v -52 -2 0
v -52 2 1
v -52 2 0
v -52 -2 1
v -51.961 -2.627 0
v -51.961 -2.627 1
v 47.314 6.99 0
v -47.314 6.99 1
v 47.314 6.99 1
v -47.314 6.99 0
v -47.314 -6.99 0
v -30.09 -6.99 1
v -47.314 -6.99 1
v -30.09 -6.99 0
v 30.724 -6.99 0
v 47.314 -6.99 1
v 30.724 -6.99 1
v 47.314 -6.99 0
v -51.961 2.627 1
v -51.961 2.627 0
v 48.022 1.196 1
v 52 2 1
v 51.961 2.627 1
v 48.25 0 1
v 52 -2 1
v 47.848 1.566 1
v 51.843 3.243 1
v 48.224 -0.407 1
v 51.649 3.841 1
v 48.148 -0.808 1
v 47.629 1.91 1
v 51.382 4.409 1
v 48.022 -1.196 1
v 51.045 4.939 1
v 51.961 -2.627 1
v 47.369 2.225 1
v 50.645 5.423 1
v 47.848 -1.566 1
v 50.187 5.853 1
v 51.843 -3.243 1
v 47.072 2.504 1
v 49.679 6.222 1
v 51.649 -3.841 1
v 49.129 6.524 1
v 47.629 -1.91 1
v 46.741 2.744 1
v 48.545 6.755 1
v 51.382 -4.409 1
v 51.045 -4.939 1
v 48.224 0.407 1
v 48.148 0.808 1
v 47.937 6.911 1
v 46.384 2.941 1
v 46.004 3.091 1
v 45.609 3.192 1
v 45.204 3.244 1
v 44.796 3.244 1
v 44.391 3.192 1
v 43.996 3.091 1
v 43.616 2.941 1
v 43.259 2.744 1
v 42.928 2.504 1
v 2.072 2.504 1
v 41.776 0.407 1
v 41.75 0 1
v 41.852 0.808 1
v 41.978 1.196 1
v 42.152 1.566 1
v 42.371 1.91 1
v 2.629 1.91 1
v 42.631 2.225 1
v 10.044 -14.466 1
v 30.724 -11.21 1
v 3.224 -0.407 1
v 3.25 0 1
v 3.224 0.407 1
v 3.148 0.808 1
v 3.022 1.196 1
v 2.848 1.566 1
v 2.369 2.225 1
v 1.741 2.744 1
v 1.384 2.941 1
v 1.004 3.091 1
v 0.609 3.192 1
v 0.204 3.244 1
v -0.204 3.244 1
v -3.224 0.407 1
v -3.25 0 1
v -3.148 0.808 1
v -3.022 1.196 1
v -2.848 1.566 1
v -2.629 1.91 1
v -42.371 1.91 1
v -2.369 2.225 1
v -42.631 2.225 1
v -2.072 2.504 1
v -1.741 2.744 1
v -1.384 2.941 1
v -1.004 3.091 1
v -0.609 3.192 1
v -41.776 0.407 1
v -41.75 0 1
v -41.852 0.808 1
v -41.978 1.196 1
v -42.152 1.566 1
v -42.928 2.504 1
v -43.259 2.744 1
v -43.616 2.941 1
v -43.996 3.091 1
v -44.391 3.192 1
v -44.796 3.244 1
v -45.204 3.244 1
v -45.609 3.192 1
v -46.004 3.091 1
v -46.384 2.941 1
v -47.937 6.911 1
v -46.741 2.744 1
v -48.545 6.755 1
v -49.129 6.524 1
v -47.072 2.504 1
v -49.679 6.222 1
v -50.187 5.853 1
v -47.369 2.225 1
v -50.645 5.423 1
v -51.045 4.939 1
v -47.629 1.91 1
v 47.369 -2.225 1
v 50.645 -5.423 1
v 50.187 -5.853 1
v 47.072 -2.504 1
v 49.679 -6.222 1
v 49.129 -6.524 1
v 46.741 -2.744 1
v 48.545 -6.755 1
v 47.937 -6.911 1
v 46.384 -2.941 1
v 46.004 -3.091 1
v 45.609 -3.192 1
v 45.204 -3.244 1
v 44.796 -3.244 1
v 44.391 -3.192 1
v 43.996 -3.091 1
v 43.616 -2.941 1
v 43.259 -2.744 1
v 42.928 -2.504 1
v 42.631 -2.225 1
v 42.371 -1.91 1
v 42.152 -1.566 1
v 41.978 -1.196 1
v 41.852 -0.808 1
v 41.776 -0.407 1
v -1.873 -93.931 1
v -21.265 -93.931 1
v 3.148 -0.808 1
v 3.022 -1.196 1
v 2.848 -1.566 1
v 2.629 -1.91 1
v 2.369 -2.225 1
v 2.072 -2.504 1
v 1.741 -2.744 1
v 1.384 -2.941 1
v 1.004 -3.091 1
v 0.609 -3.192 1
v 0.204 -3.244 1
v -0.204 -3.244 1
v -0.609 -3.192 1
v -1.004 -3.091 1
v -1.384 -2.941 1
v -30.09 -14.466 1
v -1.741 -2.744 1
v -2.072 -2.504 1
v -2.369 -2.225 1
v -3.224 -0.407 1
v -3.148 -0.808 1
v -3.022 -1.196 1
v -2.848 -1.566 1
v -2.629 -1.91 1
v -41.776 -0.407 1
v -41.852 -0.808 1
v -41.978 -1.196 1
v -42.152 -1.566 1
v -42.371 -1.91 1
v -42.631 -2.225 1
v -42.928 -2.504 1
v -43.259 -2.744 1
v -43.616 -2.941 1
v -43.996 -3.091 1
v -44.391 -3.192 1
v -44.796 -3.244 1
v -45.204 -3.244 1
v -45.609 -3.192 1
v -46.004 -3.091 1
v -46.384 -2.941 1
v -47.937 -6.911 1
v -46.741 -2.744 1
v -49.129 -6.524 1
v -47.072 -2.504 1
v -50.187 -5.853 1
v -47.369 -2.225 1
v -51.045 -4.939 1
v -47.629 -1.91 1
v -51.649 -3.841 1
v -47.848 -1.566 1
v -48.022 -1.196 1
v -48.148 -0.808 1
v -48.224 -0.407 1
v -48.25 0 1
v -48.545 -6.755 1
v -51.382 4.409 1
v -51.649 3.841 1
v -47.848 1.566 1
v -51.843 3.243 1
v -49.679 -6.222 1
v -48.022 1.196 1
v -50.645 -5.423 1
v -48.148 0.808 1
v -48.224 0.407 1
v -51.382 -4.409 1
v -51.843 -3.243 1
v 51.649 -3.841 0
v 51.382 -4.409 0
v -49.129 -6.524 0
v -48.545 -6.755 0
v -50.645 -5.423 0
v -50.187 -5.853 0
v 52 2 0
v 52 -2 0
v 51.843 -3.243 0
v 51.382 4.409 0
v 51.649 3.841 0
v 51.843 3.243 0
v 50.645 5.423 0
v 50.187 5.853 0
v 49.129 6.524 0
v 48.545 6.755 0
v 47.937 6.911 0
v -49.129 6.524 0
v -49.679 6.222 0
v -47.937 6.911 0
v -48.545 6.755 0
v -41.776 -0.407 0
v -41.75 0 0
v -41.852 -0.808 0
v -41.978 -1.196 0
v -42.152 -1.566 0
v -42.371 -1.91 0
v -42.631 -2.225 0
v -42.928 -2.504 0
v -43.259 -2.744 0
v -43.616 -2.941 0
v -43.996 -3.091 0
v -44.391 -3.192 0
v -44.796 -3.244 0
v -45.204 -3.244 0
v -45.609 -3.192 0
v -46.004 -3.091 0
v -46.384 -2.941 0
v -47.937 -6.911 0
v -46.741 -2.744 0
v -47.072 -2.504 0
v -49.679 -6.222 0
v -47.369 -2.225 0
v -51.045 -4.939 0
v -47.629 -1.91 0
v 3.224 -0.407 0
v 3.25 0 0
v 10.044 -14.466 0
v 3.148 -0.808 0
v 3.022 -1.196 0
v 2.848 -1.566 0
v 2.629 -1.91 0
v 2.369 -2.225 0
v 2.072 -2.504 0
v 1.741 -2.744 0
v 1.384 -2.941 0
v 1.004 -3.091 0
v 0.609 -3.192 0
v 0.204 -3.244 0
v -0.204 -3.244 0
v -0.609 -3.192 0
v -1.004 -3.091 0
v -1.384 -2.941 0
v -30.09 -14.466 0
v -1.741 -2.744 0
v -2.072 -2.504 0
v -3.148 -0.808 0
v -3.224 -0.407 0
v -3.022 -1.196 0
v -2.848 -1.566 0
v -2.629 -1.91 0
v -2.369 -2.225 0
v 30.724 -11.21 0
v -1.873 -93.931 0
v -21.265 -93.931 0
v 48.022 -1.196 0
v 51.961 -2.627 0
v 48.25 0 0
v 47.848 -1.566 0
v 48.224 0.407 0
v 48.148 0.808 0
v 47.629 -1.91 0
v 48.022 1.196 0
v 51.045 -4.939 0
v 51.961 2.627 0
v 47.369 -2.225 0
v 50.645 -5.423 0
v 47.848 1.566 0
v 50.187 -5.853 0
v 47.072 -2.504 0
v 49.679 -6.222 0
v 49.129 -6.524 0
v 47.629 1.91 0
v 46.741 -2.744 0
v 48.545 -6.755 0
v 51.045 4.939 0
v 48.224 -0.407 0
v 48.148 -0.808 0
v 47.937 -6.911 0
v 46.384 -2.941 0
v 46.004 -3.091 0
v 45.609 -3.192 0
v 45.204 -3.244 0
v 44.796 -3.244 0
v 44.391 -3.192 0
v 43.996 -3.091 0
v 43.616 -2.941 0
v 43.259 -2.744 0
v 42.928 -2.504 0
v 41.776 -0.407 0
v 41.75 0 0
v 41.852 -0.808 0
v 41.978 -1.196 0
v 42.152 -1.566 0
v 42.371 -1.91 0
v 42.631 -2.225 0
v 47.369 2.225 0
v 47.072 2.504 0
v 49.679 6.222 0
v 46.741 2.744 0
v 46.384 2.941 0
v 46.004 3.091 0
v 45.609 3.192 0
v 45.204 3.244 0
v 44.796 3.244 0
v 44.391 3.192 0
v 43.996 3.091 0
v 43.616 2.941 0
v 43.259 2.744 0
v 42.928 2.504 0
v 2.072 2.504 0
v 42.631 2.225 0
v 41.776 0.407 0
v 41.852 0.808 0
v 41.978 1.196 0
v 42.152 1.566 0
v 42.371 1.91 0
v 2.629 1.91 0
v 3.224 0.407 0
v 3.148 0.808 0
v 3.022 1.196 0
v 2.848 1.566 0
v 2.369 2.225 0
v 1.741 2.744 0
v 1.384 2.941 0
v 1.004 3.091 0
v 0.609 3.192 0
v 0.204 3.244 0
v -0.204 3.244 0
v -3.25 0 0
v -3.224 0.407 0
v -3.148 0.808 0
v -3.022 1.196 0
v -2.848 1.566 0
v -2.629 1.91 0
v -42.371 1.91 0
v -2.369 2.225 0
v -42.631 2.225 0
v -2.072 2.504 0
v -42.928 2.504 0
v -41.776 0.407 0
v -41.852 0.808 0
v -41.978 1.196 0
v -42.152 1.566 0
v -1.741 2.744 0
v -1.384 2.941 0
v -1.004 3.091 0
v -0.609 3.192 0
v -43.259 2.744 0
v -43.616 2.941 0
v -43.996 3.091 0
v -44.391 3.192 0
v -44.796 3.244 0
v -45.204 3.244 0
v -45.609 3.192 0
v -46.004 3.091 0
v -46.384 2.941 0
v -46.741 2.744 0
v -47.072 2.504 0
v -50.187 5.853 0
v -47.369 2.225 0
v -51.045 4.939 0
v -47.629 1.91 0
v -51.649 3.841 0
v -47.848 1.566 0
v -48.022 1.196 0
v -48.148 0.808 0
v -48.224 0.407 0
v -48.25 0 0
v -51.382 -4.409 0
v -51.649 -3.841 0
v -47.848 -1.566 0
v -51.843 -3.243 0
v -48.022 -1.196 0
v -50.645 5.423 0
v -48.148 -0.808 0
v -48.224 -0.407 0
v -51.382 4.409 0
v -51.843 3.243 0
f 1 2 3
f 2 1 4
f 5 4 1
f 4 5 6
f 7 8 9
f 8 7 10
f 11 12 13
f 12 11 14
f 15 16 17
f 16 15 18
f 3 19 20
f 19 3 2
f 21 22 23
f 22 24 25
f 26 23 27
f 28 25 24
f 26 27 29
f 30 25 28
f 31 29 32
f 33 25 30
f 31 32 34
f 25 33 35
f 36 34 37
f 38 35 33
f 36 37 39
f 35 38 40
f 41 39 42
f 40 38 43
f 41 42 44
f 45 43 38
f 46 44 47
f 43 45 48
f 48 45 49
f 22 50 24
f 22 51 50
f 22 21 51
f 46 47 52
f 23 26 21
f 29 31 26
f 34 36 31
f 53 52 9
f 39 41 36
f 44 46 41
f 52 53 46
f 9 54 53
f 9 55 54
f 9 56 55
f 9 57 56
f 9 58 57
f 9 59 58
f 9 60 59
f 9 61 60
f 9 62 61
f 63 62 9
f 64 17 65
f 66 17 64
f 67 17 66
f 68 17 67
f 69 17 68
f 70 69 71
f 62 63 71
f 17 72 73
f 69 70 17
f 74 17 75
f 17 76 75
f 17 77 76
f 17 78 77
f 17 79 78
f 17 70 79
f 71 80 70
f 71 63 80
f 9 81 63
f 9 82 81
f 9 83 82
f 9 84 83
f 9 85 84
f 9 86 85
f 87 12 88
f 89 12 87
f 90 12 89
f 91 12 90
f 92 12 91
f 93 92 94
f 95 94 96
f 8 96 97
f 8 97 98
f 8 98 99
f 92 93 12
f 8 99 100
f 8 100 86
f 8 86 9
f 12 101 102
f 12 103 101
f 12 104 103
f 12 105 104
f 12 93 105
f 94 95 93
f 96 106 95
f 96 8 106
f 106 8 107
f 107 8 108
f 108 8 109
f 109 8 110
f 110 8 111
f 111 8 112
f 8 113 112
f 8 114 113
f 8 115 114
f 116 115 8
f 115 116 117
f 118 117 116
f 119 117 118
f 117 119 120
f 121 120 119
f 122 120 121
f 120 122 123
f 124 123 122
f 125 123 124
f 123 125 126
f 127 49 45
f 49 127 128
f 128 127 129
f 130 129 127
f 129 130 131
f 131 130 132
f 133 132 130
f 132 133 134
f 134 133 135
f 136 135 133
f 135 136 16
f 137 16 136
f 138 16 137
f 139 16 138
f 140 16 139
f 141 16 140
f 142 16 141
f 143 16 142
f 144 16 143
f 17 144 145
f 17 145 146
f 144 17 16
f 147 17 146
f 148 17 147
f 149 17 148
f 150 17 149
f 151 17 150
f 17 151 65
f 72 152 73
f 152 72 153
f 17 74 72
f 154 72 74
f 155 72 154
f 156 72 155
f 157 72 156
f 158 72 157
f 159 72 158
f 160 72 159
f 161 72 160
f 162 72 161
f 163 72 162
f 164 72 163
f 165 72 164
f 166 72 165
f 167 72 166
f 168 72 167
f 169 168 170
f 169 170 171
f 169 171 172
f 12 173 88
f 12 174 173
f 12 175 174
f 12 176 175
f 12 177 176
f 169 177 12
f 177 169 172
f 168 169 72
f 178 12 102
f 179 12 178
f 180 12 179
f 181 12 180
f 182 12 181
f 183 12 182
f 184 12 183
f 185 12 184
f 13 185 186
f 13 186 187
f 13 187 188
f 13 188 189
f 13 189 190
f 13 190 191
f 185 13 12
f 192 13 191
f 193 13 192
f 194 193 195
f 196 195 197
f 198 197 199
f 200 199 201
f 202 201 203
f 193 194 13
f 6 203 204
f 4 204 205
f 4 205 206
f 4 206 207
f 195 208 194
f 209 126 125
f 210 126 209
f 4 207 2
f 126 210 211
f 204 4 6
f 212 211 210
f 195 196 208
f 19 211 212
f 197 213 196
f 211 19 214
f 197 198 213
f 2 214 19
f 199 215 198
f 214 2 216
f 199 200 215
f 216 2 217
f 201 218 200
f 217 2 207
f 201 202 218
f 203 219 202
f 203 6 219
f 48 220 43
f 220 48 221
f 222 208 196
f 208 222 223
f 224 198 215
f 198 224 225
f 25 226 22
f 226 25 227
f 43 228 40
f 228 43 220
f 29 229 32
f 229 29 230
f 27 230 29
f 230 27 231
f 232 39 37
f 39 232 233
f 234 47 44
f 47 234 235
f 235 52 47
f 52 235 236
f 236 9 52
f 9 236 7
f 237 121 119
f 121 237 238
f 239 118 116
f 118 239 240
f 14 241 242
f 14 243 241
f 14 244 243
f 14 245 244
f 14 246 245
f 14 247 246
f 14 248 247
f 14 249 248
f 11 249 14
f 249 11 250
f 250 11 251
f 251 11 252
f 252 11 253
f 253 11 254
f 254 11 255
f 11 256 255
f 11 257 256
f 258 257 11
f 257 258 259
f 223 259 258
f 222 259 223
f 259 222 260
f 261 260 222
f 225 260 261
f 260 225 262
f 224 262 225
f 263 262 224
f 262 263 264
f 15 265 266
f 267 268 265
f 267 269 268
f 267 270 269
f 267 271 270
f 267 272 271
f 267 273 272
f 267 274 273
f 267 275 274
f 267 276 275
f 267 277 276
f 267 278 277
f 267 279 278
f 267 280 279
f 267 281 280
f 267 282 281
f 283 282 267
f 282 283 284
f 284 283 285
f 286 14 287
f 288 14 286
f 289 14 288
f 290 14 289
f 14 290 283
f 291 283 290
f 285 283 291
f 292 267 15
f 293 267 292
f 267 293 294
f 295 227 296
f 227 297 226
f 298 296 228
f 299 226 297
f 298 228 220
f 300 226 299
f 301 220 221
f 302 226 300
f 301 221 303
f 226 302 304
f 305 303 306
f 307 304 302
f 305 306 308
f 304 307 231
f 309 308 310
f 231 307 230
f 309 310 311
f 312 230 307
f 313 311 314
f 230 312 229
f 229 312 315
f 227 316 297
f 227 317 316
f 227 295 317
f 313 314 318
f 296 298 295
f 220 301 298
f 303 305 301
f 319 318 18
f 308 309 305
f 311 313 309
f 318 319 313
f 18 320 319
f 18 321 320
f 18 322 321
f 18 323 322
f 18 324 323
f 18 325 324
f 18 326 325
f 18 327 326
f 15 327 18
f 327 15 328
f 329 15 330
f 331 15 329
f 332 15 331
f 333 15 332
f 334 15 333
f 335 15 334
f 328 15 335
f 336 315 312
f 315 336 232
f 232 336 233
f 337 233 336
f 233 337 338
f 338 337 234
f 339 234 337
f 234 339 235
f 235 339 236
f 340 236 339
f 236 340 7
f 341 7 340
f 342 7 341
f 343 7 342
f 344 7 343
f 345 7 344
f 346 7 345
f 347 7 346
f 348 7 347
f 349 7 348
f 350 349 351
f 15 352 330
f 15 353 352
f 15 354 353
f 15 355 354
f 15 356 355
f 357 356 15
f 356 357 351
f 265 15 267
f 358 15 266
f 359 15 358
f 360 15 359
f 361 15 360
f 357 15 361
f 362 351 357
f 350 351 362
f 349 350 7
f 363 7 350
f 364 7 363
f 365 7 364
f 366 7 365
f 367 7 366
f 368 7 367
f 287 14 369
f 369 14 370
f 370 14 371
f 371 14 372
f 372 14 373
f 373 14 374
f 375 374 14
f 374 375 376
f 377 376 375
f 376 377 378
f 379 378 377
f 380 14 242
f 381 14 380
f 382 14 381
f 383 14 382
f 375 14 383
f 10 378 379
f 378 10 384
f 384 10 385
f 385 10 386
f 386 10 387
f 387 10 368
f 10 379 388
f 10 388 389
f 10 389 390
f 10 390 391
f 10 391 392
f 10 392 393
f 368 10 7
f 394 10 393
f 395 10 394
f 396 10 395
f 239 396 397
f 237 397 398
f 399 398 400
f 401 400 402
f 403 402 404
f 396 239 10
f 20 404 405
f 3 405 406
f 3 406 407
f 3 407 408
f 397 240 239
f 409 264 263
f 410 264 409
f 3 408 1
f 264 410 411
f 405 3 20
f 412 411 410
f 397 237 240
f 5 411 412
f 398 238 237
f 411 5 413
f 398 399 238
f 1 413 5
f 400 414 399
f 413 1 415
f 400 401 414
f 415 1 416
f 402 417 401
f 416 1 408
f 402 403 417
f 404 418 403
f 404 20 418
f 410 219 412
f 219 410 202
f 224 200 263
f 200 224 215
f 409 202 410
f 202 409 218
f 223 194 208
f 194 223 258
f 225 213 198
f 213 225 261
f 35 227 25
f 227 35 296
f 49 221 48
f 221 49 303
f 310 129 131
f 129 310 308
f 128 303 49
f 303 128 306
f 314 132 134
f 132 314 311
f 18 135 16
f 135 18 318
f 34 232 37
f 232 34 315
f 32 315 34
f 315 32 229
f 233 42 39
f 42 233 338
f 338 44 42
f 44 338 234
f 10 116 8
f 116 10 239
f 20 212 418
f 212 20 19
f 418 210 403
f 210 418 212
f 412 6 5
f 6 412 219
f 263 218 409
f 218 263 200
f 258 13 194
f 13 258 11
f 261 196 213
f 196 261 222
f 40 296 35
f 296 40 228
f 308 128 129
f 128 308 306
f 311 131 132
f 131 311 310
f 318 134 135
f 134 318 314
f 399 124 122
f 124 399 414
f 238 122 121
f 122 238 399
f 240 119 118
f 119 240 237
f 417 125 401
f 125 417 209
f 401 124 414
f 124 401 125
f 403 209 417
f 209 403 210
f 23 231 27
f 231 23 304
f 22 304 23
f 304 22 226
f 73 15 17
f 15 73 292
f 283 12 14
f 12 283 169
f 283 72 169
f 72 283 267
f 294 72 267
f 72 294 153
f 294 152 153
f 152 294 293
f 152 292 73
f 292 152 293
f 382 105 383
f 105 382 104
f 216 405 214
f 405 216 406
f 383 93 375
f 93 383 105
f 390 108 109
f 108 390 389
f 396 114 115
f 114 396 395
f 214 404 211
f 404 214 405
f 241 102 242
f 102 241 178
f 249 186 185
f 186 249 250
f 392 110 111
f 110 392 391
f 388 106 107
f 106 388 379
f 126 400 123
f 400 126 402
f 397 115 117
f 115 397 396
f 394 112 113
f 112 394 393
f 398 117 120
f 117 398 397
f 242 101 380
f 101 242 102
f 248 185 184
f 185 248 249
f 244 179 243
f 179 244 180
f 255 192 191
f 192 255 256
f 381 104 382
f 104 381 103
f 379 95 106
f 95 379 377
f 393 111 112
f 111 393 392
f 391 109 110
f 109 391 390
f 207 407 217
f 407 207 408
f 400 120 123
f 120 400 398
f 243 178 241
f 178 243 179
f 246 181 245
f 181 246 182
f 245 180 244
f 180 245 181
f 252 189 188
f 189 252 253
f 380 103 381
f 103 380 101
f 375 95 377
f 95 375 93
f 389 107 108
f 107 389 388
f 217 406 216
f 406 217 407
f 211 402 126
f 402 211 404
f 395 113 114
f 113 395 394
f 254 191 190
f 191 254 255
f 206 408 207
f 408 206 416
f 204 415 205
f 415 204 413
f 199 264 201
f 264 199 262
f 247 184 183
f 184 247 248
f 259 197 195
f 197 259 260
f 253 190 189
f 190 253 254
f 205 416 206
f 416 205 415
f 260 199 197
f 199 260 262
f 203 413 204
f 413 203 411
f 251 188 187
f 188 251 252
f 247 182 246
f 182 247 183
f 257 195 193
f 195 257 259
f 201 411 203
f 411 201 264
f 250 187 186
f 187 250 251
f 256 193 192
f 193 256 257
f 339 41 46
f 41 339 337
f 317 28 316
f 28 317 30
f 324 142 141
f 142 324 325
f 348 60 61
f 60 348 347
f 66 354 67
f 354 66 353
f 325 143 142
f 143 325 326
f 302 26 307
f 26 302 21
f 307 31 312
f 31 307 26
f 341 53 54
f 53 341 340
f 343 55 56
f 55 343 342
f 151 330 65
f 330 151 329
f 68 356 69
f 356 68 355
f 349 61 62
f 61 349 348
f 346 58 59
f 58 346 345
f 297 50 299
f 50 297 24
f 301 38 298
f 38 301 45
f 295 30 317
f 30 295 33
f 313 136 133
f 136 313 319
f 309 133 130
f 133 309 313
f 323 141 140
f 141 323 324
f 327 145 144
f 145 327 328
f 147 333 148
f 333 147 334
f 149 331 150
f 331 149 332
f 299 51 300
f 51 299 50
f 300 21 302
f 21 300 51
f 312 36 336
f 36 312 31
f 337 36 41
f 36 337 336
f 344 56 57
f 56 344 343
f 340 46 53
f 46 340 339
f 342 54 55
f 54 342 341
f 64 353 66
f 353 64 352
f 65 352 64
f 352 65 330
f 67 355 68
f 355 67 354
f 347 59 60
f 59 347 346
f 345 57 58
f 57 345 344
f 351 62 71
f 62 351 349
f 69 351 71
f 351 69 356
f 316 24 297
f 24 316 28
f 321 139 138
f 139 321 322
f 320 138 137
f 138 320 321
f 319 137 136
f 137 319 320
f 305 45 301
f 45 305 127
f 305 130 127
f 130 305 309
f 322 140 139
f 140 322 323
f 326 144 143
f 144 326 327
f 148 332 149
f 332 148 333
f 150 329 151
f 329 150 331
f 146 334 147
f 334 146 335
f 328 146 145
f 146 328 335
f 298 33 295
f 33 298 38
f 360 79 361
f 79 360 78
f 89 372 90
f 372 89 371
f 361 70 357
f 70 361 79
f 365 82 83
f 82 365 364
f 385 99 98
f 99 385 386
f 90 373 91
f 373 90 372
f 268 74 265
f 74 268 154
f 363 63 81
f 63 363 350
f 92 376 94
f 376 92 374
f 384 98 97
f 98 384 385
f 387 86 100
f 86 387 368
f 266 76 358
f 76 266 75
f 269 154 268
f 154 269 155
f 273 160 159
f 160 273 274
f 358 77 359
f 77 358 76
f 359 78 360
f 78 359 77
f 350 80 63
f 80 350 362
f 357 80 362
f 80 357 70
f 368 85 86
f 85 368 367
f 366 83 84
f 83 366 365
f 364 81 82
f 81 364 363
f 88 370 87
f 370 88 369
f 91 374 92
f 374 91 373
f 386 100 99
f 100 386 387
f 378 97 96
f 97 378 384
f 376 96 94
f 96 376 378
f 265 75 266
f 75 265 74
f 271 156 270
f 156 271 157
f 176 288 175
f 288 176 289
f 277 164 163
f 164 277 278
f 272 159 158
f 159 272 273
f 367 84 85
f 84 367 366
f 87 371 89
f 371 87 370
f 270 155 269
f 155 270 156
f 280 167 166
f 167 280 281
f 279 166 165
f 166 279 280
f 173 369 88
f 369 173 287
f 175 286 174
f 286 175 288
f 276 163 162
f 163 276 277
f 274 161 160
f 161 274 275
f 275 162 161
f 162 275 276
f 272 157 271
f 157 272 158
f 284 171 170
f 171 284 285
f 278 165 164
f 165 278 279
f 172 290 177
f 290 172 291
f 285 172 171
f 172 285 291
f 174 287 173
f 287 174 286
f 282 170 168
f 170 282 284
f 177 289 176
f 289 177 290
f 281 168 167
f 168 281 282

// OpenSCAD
$fn = 50;


difference() {
	union() {
		translate(v = [0, 0, 0]) {
			rotate(a = [0, 0, 0]) {
				hull() {
					translate(v = [-47.0000000000, 2.0000000000, 0]) {
						rotate(a = [0, 0, 0]) {
							translate(v = [0, 0, 0]) {
								rotate(a = [0, 0, 0]) {
									cylinder(h = 1, r = 5);
								}
							}
						}
					}
					translate(v = [47.0000000000, 2.0000000000, 0]) {
						rotate(a = [0, 0, 0]) {
							translate(v = [0, 0, 0]) {
								rotate(a = [0, 0, 0]) {
									cylinder(h = 1, r = 5);
								}
							}
						}
					}
					translate(v = [-47.0000000000, -2.0000000000, 0]) {
						rotate(a = [0, 0, 0]) {
							translate(v = [0, 0, 0]) {
								rotate(a = [0, 0, 0]) {
									cylinder(h = 1, r = 5);
								}
							}
						}
					}
					translate(v = [47.0000000000, -2.0000000000, 0]) {
						rotate(a = [0, 0, 0]) {
							translate(v = [0, 0, 0]) {
								rotate(a = [0, 0, 0]) {
									cylinder(h = 1, r = 5);
								}
							}
						}
					}
				}
			}
		}
		translate(v = [0, 0, 0]) {
			rotate(a = [0, 0, 0]) {
				linear_extrude(height = 1) {
					text(font = "DejaVu Sans Mono:style=Bold", halign = "center", size = 95, text = "7", valign = "top");
				}
			}
		}
	}
	union() {
		translate(v = [-45.0000000000, 0.0000000000, -125.0000000000]) {
			rotate(a = [0, 0, 0]) {
				cylinder(h = 250, r = 3.2500000000);
			}
		}
		translate(v = [45.0000000000, 0.0000000000, -125.0000000000]) {
			rotate(a = [0, 0, 0]) {
				cylinder(h = 250, r = 3.2500000000);
			}
		}
		translate(v = [45.0000000000, 0.0000000000, -125.0000000000]) {
			rotate(a = [0, 0, 0]) {
				cylinder(h = 250, r = 3.2500000000);
			}
		}
		translate(v = [0, 0, -125.0000000000]) {
			rotate(a = [0, 0, 0]) {
				cylinder(h = 250, r = 3.2500000000);
			}
		}
	}
}
